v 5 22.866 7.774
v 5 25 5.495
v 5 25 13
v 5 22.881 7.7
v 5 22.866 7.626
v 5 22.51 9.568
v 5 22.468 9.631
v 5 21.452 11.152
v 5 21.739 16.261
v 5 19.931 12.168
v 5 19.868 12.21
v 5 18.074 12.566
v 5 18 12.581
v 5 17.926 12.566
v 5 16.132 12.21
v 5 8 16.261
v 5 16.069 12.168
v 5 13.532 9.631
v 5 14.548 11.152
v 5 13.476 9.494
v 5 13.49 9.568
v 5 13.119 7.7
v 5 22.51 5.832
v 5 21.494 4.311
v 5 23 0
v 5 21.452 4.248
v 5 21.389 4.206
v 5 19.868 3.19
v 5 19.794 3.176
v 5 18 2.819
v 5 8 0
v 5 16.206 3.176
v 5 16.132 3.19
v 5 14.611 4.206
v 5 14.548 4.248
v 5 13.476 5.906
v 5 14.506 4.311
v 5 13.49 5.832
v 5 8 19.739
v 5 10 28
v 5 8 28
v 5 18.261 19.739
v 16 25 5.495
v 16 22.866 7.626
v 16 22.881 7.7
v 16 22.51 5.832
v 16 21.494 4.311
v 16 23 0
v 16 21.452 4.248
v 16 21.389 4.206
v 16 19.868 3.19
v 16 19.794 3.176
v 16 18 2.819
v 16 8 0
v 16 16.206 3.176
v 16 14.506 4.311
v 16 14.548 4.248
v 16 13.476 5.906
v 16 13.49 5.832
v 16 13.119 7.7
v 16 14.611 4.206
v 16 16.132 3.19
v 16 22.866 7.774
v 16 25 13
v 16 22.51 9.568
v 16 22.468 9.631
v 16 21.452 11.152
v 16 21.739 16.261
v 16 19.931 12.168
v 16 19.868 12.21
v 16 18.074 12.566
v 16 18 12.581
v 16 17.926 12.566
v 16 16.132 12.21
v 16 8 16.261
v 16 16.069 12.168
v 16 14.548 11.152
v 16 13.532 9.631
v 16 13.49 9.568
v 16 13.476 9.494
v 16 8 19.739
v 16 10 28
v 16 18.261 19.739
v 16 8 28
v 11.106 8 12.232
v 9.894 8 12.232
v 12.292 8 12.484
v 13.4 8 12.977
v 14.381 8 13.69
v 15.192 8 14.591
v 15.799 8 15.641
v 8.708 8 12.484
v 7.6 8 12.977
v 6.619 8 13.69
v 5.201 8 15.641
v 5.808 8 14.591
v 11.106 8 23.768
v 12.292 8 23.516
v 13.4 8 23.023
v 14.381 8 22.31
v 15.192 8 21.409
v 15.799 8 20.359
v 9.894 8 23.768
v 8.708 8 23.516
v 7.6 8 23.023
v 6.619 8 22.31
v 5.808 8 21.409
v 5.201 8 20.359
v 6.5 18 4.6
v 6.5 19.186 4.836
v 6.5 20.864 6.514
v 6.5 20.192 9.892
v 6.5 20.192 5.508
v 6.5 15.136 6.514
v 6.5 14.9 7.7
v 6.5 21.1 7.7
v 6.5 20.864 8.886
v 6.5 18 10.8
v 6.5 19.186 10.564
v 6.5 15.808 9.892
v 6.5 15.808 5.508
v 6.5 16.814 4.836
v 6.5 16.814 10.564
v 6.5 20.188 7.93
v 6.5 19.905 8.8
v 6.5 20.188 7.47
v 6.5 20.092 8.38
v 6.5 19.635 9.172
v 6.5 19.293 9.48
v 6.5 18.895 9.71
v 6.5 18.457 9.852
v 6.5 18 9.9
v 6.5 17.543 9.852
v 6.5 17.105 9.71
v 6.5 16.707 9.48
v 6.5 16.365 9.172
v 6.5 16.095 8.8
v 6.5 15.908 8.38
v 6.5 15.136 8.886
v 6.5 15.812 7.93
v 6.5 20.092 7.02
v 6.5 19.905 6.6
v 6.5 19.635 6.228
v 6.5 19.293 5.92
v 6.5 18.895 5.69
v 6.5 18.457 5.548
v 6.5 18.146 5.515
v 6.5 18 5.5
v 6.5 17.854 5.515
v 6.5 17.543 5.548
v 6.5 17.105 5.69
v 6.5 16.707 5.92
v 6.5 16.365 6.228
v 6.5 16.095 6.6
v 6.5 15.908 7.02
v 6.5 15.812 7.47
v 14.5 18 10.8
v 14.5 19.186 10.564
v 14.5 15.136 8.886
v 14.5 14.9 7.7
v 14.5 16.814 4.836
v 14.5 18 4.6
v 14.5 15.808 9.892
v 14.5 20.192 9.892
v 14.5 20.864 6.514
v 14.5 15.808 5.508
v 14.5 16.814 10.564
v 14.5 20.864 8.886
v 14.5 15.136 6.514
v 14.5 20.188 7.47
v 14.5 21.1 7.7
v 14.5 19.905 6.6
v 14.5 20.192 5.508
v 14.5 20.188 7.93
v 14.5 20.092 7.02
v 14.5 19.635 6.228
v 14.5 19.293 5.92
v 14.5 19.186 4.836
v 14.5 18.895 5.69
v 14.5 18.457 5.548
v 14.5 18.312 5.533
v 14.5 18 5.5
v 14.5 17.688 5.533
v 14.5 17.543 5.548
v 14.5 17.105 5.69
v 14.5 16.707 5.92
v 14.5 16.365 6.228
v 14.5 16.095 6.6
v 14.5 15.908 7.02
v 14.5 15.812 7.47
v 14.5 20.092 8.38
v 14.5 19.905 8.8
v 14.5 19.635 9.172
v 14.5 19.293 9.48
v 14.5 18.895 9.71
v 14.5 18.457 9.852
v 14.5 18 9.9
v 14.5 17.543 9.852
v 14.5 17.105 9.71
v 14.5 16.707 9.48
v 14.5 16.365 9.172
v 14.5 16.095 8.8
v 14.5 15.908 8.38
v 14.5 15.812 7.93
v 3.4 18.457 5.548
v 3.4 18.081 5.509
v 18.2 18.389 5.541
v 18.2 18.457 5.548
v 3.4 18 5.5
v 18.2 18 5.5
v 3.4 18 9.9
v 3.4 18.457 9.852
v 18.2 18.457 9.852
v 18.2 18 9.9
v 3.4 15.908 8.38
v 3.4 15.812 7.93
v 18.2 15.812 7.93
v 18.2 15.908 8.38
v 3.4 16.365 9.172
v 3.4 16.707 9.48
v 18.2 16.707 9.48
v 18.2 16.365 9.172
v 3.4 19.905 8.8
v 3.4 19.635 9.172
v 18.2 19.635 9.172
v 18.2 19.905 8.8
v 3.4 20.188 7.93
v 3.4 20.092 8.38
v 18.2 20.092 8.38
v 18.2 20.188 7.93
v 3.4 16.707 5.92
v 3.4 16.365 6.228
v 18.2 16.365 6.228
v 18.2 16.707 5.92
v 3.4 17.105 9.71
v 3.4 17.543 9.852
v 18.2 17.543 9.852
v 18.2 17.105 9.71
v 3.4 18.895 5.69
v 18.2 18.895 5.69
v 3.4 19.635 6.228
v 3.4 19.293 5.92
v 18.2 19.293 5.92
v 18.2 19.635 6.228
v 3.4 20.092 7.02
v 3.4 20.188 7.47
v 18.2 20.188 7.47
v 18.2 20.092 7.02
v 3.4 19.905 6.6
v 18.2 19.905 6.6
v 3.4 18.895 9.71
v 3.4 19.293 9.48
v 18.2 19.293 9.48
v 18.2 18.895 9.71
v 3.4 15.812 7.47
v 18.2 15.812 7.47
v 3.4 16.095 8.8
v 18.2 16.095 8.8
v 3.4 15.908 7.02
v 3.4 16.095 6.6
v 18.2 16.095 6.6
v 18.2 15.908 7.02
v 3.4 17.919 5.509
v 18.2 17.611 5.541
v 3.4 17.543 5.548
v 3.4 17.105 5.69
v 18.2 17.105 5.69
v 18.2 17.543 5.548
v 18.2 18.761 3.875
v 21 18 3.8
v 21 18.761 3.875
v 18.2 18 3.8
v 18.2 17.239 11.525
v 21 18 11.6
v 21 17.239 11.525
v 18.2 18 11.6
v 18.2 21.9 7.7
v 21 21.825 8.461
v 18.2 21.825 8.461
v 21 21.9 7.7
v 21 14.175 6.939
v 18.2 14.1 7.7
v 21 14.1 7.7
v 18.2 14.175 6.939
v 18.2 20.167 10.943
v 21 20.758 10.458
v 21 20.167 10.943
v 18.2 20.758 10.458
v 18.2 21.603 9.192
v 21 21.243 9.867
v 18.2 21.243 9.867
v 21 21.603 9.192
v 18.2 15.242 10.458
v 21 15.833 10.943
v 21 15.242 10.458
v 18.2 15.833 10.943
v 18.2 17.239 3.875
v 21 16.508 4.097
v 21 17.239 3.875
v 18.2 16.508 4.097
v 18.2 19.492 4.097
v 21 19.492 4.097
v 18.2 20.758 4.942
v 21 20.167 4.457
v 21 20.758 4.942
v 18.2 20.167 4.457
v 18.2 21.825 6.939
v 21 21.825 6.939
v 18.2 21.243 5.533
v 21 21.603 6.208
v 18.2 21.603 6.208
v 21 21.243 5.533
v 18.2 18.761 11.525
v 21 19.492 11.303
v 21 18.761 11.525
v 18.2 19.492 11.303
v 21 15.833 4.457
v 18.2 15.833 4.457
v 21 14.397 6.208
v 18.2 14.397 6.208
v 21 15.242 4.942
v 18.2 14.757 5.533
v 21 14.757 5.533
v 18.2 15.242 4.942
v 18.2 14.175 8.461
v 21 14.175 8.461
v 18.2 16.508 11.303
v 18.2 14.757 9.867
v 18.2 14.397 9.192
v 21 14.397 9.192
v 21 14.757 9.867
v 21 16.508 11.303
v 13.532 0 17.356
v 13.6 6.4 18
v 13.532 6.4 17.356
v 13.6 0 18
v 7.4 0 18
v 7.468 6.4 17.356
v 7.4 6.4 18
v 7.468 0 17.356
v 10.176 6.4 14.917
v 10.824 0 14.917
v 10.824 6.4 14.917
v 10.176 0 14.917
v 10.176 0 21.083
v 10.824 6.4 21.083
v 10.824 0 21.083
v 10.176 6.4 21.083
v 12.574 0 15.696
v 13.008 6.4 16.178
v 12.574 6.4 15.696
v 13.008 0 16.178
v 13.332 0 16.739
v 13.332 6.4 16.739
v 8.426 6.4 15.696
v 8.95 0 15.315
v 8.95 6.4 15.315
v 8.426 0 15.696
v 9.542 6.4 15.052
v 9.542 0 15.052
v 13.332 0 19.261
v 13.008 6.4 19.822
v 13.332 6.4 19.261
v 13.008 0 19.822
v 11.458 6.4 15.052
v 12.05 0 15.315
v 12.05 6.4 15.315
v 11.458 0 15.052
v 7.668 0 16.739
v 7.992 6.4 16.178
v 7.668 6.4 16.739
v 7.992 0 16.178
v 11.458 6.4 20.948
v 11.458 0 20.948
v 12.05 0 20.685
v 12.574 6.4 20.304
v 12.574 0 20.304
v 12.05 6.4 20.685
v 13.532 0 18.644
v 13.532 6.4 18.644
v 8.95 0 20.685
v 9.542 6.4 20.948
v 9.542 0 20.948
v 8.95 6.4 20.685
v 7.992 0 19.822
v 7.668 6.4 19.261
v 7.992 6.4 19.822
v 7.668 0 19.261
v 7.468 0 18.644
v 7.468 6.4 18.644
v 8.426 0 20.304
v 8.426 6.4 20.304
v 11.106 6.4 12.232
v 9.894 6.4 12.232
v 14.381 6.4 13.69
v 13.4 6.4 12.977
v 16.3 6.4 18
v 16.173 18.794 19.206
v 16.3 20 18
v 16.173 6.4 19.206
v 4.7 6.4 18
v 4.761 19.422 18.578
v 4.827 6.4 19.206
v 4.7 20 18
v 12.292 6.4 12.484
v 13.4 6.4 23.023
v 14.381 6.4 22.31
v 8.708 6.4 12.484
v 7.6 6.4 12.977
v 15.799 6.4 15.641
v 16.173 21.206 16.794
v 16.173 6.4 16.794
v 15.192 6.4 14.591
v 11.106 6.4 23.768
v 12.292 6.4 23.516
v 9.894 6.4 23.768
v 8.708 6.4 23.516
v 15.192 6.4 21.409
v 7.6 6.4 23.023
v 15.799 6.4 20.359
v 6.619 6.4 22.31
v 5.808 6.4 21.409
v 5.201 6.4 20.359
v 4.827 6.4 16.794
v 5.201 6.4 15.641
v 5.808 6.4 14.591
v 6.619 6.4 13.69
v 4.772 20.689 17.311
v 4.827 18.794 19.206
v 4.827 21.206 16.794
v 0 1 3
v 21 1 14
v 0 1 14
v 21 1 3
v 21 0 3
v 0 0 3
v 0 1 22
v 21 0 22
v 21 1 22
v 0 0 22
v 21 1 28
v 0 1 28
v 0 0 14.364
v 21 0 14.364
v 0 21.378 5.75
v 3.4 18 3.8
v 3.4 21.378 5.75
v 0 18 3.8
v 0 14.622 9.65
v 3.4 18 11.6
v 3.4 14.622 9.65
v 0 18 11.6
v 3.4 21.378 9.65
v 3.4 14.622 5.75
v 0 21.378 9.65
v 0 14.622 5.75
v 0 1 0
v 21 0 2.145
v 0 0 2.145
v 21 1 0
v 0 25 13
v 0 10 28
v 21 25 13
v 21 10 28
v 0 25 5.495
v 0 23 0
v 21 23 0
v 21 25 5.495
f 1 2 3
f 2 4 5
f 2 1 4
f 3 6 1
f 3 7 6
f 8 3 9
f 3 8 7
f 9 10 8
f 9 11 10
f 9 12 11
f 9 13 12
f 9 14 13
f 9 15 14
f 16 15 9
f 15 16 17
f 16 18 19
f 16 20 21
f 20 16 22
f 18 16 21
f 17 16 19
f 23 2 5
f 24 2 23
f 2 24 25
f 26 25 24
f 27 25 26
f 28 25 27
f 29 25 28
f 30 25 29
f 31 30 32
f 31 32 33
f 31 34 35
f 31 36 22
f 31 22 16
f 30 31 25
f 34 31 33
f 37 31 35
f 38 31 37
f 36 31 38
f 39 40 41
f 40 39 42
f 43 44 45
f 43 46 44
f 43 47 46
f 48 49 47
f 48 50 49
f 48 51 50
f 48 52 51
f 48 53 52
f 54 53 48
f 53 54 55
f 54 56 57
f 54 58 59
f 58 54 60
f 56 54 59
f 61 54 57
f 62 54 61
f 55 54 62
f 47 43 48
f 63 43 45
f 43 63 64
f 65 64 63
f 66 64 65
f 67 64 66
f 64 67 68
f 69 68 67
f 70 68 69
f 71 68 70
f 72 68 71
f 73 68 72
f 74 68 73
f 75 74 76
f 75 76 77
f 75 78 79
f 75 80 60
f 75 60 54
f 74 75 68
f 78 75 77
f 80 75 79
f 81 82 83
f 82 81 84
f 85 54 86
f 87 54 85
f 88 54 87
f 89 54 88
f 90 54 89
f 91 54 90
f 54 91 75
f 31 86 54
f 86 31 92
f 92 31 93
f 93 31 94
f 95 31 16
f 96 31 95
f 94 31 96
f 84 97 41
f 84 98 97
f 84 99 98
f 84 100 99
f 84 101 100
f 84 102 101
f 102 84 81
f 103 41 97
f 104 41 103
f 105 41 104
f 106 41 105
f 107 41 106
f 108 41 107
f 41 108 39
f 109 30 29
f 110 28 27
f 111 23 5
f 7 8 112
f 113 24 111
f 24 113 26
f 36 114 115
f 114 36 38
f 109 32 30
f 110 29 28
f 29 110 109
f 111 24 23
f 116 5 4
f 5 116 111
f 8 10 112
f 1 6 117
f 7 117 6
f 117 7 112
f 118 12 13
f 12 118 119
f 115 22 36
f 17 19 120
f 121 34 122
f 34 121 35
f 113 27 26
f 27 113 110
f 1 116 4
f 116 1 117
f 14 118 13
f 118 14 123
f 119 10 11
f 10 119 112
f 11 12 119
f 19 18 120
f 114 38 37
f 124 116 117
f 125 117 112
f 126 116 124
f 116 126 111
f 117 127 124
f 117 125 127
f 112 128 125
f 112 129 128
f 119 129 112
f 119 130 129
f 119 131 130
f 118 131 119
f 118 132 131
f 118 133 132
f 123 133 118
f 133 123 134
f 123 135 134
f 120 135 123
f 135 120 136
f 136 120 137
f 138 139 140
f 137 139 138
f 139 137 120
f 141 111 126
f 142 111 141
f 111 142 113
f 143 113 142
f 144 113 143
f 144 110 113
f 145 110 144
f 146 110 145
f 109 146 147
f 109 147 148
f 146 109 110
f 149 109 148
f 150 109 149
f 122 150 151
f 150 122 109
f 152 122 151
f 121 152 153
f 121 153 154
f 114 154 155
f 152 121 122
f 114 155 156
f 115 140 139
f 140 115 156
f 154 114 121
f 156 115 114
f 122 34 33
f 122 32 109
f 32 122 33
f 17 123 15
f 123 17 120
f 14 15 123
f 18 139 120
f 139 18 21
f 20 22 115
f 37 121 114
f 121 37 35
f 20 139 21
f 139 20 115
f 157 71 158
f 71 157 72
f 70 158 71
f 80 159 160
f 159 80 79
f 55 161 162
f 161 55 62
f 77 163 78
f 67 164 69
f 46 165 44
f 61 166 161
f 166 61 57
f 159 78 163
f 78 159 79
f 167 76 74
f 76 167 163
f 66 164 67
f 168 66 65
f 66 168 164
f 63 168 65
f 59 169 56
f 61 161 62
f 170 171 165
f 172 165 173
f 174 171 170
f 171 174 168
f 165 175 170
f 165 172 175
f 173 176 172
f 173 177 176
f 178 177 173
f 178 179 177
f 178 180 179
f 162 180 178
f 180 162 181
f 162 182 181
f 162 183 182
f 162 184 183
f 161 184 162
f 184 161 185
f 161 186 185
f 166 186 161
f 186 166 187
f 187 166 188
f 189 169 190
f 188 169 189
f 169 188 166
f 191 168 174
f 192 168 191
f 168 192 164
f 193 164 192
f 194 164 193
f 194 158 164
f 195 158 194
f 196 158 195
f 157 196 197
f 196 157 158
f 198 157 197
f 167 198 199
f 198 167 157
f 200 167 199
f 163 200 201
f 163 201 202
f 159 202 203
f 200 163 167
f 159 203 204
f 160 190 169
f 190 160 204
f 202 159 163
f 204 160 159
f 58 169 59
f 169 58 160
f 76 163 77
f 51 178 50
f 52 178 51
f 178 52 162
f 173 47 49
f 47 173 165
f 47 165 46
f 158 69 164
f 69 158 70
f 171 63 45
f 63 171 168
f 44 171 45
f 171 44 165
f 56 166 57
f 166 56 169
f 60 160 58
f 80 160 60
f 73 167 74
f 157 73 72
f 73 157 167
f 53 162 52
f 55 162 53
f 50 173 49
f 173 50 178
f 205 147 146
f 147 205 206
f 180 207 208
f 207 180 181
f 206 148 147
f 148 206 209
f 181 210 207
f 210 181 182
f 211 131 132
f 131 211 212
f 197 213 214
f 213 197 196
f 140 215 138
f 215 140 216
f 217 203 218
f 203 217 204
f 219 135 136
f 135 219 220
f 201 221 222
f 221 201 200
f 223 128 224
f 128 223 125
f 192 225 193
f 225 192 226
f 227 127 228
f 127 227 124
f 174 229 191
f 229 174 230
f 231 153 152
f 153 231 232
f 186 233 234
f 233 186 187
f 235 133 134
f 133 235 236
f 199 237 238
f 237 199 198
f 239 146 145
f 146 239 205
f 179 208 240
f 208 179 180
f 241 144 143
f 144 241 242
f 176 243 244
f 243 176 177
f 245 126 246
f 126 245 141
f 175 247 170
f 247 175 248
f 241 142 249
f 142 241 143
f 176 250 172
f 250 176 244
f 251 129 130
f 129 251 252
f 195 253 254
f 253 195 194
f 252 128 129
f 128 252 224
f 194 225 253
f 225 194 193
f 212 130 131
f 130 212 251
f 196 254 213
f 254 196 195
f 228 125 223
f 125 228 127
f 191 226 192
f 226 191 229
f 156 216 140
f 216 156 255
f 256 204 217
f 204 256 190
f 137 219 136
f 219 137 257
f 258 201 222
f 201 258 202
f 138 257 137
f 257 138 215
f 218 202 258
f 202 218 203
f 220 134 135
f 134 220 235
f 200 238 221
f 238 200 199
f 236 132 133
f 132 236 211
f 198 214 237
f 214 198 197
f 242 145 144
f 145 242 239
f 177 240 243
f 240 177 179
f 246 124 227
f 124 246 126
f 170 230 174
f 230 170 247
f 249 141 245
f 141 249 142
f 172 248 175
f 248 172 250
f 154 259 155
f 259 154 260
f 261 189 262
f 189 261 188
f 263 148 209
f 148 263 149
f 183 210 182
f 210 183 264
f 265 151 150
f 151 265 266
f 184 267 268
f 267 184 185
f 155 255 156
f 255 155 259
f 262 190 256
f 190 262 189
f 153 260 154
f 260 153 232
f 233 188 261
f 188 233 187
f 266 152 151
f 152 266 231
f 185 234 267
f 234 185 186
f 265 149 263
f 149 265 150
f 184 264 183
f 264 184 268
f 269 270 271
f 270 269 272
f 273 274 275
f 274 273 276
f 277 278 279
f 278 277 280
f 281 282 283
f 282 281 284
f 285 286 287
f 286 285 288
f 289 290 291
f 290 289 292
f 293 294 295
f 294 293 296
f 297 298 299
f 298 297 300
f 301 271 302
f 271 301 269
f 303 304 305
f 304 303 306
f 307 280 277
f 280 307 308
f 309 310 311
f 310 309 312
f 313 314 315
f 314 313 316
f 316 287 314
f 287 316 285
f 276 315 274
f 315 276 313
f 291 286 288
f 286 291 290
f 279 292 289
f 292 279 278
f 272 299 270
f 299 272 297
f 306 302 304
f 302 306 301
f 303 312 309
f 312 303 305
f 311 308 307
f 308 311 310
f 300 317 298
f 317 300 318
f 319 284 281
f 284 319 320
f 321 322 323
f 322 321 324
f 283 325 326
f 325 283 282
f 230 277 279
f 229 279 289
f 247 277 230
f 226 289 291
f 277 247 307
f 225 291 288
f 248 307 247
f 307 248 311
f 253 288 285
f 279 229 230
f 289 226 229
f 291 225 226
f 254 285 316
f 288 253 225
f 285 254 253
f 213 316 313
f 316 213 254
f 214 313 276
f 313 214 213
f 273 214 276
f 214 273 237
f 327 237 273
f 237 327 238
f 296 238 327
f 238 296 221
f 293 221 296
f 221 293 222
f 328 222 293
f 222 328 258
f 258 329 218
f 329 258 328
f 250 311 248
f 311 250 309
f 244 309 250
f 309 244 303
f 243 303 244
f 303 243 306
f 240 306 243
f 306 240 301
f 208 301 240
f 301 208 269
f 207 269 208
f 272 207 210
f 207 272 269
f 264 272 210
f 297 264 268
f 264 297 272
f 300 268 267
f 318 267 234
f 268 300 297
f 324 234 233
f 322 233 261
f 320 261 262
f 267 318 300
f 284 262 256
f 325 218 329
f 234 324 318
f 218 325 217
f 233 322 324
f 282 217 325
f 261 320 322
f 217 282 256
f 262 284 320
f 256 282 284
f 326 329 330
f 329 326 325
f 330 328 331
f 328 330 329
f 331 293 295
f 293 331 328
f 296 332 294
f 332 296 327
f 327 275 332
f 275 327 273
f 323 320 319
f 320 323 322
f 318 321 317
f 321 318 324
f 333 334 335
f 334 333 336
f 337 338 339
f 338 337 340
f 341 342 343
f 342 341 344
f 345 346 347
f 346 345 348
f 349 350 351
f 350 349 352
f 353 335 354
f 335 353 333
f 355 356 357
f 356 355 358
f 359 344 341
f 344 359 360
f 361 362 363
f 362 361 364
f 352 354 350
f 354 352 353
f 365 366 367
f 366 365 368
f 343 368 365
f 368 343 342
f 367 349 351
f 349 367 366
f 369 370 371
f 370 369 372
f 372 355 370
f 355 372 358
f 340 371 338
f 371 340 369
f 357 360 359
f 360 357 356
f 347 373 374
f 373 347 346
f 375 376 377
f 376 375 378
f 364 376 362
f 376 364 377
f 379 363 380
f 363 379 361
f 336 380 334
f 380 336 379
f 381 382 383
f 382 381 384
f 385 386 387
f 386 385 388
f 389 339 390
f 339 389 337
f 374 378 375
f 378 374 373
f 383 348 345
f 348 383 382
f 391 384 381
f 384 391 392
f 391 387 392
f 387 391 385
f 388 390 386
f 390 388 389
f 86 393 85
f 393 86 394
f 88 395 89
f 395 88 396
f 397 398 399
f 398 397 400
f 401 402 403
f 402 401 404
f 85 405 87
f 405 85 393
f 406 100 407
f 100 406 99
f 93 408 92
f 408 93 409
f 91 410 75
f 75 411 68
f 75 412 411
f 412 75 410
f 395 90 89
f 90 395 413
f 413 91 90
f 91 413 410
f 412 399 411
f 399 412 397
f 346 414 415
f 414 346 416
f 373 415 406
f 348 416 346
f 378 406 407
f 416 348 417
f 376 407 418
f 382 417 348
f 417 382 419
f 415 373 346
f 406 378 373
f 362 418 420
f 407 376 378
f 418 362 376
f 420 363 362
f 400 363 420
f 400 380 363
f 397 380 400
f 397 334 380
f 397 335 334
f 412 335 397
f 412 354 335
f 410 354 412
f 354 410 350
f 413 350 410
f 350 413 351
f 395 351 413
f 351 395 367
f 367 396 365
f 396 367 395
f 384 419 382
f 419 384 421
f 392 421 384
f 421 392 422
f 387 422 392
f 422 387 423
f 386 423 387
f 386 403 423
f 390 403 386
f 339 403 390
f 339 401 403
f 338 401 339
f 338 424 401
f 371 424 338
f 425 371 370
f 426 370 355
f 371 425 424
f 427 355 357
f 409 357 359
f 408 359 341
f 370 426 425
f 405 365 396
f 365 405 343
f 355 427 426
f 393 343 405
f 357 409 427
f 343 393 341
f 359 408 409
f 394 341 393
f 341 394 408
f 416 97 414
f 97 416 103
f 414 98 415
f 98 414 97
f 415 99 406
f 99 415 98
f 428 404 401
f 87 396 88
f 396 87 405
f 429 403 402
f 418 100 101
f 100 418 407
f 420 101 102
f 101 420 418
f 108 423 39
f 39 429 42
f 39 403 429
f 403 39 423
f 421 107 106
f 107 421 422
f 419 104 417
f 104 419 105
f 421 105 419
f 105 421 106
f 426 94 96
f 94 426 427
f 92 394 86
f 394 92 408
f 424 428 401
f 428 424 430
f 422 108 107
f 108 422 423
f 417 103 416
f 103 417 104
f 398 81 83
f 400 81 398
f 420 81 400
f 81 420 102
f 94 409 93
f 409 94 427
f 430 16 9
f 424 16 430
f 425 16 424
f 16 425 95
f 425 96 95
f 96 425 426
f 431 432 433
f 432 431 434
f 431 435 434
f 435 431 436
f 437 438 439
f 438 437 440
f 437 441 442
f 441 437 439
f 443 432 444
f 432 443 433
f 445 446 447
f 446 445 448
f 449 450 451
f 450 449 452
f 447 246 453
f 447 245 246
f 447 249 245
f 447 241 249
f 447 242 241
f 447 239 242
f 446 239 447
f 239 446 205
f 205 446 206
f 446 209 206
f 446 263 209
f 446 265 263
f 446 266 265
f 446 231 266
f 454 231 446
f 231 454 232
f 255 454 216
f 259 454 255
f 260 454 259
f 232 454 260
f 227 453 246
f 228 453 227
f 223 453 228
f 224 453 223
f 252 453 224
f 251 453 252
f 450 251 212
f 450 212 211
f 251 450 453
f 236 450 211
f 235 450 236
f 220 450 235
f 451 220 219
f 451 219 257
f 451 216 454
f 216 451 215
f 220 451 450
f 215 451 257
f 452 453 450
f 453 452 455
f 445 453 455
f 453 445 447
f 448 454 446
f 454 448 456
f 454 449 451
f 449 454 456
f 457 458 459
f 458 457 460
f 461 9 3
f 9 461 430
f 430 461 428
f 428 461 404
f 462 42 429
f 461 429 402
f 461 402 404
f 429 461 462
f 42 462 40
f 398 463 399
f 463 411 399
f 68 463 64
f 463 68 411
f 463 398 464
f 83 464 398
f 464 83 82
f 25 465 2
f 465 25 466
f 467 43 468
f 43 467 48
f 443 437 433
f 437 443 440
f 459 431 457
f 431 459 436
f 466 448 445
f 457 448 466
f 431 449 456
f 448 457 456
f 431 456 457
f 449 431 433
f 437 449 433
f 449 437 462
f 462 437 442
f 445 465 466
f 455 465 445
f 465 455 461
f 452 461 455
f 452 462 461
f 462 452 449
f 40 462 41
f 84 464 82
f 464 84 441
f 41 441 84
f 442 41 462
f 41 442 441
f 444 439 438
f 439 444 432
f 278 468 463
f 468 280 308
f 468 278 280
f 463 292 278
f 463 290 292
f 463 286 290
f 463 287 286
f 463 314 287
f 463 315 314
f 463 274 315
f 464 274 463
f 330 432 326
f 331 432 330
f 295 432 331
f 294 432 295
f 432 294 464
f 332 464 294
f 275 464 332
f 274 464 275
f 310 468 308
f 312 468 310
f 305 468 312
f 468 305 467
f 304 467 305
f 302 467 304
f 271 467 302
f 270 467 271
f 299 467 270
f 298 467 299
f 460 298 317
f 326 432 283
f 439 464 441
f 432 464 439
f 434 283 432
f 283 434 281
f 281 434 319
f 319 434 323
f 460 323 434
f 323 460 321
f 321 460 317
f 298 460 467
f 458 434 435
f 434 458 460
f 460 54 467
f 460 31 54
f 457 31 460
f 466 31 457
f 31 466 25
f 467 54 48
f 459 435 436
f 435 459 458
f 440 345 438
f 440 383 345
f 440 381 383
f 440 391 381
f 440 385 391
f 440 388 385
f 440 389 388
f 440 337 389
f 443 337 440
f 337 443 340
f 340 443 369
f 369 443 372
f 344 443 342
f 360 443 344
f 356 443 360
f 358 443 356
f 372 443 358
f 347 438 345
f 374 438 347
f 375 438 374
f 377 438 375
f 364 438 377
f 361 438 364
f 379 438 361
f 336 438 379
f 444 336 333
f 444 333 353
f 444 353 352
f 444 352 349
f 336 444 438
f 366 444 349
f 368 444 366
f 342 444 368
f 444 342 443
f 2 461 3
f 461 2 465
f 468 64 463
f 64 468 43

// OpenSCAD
// file: ../configuration.scad
/*
	Konfiguracni soubor 3D tiskarny RebeliX X2
	
	Sledujte nas na:		  
			www.RepRap4U.cz
			www.facebook.com/RebeliX.cz
			https://twitter.com/reprap4u
			https://plus.google.com/+Reprap4uCz-3Dtiskarna-RebeliX
*/

/*================ Slic3r nastaveni ==========================*/

// Vyska vrstvy pro tisknuti dilu [mm]
layer_height = 0.3;

// Sirka vytlacovaneho materialu [mm]
extrusion_width = 0.66; //Slic3r->Print Settings->Advanced->Default extrusion width

/*==================== M6 sroub ==============================*/

// Rezerva prumeru hlavy sroubu [mm]
space = 1;

// Prumer hlavy M6 sroubu (pricte se rezerva) [mm]
M6_head_diameter = 10.6+space;
//M6_head_diameter = 12+space;

// Vyska hlavy M6 sroubu (dulezite pro zapusteni hlavy sroubu do plastu) [mm]
M6_head_height = 3.6;
//M6_head_height = 4.5;

// Delka sroubu M6 [mm]
// M6x12
M6_lenght = 12;

/*=================== Nastaveni dilu =========================*/

// Posun Z zakladny
z_base_offset = 11;

// Tloustka rohovych spojek
// 5 mm => sroub M6x14 s podlozkou
// 3 mm => sroub M6x12 s podlozkou
coupler_thickness = 7;

// Prumer 8mm tyce
rod_8mm_d = 8.2;

// Posun drzacku mezi x-motor a x-end
x_holder_position = 6.5;

/*======================== Motory ============================*/

// Delka motoru (ovlivni dily a delky tyci pro osy Z a Y)
//SX17-1003LQFE (doporuceno hlavne na osu Z)
//motor_length = 29.5;
//SX17-1003 (doporuceno hlavne na osu Z), SX17-0503LQEF
motor_length = 34;
//SX17-1005
//motor_length = 40;
//SX17-0905 - zde je jiz problem s velkou vyskou motoru na ose Z - musi se upravit endstop-holder
//motor_length = 48;

/*================ Remeny a remenicky ========================*/

// GT2 
belt_tooth_distance = 2;
belt_tooth_ratio = 0.5;

// T2.5
//belt_tooth_distance = 2.5;
//belt_tooth_ratio = 0.68;
// main file
// RebeliX
//
// y-idler
// GNU GPL v3
// Martin Neruda <neruda@reprap4u.cz>
// http://www.reprap4u.cz

include <../configuration.scad>

// Lozisko 604
bearing_width = 4;

wall = 5;
height = 28;
depth = 25;
width = 2*bearing_width+2*wall+3;
base_thickness = 8;

module y_idler_base(){
	cube([width,depth,height]);
}

module y_idler_cuts(){
	difference(){
	  // Vyrez pro lozisko
	  translate([wall,base_thickness,-0.1]) cube([width-2*wall,depth,height+1]);
	  // Mezera pro loziska
	  translate([wall-0.1,depth-7,7.7]) rotate([0,90,0]) cylinder(r1=5,r2=3.1,h=1.6);
	  translate([width-wall+0.1,depth-7,7.7]) rotate([0,-90,0]) cylinder(r1=5,r2=3.1,h=1.6);
	}
	// Otvor pro sroub na lozisko
	translate([width/2,depth-7,7.7]) rotate([0,90,0]) cylinder(r = 2.2, h = width+1, $fn = 30,center=true);
	translate([width,depth-7,7.7]) rotate([0,90,0])cylinder(r=3.9,h=wall+0.6,$fn=32,center=true);
	
	// Otvor na prisroubovani do kombistojky
	translate([width/2,-0.1,3+15]) rotate([-90,0,0]) cylinder(r = 3.1, h = depth, $fn = 30);
	// Otvor pro zahloubeni M6 sroubu
	translate([width/2,base_thickness-M6_head_height+2,3+15]) rotate([-90,0,0]) cylinder(r = M6_head_diameter/2, h = depth, $fn = 30);
	// Vyrez pro hlinikovy profil
	translate([-0.1,-0.1,3]) cube([width+1,1.1,15-4]);
	translate([-0.1,-0.1,3+15+4]) cube([width+1,1.1,15-4]);
	translate([-0.1,1,3+15-4]) rotate([160,0,0]) cube([30,3,8]); 
	// Otvor na matku
	translate([-0.1,depth-7,7.7]) rotate([0,90,0]) cylinder(h = 3.5, r=3.9, $fn=6);	
	// Setreni plastem
	translate([-0.1,1,0]) rotate([115,0,0]) cube([width+1,6,6]);
	translate([-0.1,depth,13]) rotate([45,0,0]) cube([width+1,depth+2,height]);
	translate([-0.1,depth-2,0]) rotate([-20,0,0]) cube([width+1,10,10]);
	
	// Lozisko
	%translate([wall+1.5,depth-7,7.7]) rotate([0,90,0]) cylinder(r = 6.5, h = 2*bearing_width, $fn = 30);
}

difference(){
	y_idler_base();
	y_idler_cuts();
}	
